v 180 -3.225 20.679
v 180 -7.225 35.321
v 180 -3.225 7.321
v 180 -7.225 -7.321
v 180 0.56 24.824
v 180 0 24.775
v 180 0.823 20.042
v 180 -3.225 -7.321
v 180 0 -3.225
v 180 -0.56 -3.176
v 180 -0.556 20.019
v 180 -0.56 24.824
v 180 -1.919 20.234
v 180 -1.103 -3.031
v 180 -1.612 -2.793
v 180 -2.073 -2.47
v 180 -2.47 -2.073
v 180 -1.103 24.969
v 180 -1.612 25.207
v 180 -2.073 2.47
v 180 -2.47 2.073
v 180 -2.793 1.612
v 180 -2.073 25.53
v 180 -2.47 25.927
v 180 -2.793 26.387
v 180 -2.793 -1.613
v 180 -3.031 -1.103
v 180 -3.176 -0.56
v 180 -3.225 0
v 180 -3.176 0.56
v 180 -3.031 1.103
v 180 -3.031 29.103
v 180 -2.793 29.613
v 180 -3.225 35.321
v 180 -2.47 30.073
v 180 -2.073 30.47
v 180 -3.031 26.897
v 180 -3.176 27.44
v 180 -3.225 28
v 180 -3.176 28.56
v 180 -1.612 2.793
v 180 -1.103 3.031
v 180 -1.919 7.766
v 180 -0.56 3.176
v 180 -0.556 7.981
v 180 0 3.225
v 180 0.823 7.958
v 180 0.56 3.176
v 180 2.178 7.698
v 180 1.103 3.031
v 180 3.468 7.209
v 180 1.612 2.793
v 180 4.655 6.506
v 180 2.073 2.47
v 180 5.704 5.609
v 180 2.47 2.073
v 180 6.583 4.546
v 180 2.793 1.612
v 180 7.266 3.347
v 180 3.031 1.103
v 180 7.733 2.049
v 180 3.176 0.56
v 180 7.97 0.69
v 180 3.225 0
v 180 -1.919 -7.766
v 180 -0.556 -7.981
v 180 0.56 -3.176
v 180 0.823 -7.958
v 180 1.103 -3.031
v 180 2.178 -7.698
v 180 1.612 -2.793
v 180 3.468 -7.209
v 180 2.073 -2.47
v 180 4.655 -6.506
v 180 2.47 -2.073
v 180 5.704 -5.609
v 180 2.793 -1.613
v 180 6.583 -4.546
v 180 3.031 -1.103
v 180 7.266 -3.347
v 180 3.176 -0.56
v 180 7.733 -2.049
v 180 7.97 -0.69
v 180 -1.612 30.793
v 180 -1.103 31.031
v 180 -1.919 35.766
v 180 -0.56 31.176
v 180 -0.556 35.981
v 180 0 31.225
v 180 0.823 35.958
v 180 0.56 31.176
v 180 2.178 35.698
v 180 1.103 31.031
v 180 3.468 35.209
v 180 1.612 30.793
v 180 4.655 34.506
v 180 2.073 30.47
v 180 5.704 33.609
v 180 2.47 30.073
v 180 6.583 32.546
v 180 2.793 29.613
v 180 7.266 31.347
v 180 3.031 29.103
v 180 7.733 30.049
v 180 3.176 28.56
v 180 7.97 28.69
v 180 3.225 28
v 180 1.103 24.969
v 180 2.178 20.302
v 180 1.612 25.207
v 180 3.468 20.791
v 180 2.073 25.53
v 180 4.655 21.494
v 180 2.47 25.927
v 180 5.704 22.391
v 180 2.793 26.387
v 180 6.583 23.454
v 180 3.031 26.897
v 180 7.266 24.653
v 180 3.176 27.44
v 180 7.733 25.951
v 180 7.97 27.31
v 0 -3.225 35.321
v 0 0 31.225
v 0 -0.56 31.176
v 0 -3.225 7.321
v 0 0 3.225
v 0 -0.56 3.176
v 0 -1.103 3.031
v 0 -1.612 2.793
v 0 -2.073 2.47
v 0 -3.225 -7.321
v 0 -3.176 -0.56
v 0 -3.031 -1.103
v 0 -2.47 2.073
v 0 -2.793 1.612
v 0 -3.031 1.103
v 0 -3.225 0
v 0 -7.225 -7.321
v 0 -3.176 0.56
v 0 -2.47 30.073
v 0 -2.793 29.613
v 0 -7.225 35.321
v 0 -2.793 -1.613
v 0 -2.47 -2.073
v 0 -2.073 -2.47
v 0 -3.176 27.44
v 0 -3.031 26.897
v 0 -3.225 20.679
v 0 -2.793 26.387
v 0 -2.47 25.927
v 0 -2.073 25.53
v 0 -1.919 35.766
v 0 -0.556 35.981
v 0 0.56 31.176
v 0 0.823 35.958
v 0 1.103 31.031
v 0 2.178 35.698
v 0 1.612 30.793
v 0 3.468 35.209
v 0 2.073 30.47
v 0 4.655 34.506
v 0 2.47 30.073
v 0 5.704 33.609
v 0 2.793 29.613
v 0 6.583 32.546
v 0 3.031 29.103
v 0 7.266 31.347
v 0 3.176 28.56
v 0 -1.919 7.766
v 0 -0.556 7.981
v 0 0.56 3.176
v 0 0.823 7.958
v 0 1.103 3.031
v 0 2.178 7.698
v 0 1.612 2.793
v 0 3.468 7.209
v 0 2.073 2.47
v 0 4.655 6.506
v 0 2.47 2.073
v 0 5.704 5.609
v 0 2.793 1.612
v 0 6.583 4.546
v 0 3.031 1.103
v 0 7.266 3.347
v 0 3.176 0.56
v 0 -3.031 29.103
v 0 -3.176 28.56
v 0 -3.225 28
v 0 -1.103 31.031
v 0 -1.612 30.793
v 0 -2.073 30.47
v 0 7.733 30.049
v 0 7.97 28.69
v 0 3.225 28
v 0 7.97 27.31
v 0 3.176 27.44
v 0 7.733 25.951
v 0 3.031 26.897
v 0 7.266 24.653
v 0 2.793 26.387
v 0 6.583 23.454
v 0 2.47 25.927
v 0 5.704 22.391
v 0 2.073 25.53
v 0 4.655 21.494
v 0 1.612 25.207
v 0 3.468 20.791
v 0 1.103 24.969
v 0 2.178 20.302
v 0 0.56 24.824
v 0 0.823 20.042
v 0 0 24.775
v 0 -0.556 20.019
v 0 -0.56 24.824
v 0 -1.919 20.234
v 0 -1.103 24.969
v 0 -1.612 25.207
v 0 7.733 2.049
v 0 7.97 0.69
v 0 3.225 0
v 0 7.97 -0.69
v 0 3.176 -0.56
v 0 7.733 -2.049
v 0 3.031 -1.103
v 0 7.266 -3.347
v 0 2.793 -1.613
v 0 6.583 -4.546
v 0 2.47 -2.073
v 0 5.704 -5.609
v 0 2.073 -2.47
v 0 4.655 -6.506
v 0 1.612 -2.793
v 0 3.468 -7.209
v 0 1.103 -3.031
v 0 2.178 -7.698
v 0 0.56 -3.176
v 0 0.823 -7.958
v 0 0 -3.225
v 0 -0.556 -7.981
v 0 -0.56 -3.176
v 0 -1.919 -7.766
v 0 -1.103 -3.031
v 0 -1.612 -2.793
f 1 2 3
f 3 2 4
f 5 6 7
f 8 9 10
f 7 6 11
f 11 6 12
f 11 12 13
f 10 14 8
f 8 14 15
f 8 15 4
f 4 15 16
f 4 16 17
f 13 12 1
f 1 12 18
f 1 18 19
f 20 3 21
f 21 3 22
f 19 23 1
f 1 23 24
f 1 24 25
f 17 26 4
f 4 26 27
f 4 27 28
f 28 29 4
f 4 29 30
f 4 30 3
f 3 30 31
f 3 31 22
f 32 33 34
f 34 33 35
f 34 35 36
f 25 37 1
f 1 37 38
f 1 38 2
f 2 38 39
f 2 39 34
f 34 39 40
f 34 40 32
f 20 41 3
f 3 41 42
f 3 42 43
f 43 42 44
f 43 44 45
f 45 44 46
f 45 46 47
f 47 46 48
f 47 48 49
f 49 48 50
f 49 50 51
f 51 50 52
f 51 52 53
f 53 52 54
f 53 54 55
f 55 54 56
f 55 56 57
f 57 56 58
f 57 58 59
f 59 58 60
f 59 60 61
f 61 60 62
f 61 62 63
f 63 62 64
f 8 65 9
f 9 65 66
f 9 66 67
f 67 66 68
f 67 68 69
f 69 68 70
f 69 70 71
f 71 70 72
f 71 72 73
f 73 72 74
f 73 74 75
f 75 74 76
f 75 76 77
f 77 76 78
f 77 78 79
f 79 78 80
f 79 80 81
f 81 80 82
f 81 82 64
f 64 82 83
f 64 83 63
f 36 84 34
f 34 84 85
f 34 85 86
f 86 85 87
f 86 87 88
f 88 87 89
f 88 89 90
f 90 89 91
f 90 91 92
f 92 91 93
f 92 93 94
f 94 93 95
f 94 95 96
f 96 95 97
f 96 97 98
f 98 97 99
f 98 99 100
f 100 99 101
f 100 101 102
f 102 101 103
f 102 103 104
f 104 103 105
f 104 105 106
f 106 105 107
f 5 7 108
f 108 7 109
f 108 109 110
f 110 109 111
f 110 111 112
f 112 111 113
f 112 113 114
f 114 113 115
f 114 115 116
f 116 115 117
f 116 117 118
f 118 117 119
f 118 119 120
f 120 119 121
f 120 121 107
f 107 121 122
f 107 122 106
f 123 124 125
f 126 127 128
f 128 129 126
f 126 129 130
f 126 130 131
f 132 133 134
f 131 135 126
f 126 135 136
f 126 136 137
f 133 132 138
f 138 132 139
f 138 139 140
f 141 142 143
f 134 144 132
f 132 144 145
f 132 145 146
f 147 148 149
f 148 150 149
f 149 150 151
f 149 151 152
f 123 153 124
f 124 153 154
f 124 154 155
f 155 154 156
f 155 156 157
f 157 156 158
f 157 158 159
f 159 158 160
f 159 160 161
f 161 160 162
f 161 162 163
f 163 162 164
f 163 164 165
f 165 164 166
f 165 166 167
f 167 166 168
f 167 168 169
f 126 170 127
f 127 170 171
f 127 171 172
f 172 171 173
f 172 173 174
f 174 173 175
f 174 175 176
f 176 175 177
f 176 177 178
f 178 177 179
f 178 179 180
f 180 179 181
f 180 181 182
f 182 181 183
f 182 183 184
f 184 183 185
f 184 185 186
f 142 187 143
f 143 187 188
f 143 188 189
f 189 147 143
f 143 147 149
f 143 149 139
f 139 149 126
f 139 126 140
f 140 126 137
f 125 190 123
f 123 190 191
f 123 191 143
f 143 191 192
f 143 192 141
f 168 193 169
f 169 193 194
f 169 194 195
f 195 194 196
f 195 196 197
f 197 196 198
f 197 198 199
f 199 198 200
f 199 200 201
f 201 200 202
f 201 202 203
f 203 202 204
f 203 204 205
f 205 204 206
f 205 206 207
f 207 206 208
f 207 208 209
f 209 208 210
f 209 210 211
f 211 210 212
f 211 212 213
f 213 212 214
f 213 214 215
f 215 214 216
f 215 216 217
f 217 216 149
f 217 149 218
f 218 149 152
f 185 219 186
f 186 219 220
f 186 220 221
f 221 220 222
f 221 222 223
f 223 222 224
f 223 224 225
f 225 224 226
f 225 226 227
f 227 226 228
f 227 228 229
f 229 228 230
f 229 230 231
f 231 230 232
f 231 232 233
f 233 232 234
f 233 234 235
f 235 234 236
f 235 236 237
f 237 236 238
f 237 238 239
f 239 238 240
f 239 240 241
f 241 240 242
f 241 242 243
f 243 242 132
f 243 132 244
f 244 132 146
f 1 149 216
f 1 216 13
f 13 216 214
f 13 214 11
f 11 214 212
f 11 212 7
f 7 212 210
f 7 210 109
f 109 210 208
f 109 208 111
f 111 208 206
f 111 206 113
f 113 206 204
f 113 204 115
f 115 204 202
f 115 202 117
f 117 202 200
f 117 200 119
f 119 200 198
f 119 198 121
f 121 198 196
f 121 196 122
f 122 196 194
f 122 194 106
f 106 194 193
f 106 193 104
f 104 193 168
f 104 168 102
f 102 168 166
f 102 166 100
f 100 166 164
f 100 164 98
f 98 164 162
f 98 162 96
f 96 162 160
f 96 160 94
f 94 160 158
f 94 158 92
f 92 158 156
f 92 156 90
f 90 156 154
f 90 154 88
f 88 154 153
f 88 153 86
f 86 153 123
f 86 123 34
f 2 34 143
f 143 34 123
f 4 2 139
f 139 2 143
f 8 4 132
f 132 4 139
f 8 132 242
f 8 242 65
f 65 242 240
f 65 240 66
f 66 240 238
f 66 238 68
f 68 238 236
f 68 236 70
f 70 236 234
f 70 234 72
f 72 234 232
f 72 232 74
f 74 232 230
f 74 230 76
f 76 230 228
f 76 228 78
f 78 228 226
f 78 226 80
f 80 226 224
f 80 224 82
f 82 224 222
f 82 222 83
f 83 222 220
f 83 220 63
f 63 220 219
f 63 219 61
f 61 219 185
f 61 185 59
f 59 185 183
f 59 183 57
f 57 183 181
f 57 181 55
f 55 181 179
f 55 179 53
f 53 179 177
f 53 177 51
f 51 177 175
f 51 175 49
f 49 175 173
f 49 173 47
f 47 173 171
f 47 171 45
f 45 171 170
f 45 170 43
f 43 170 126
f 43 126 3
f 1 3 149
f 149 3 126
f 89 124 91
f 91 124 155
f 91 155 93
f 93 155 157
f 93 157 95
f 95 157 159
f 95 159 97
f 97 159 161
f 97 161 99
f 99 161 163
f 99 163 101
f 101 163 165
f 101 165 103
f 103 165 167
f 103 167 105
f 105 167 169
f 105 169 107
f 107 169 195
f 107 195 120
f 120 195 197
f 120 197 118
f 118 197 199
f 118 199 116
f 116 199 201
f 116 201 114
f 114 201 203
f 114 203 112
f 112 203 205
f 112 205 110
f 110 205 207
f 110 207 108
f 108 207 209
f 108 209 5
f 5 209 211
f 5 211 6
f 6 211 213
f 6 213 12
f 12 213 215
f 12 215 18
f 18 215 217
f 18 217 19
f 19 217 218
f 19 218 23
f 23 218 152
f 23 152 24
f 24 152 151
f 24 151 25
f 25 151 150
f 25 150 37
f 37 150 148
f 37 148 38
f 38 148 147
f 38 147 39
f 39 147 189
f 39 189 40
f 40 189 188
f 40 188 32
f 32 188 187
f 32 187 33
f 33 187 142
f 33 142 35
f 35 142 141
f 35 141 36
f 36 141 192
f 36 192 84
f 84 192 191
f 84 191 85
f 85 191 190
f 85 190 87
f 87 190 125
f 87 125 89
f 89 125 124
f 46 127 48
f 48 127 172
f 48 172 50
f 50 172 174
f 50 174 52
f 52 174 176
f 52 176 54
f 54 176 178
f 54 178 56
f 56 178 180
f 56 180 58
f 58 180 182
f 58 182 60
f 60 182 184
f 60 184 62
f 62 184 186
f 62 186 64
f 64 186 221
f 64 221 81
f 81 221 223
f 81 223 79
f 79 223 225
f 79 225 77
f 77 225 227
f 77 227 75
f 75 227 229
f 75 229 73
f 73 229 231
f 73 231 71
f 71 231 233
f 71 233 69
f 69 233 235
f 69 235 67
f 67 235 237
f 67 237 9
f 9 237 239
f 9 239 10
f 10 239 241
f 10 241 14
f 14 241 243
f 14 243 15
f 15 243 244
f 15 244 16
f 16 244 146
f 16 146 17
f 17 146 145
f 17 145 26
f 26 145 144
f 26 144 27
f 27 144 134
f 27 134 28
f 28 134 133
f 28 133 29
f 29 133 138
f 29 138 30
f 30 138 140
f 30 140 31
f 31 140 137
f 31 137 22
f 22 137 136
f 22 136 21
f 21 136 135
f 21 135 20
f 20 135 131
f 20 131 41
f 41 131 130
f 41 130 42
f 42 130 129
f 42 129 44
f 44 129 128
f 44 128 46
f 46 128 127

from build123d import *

# Parameters (mm, degrees)
SKETCH1_R           = 3.225
BOSS_EXTRUDE1_DEPTH = 180


with BuildPart() as part:
    # Sketch1 → Boss-Extrude1 (new body)
    with BuildSketch(Plane(origin=(0, 0, 0), x_dir=(0, 0, -1), z_dir=(1, 0, 0))):
        with BuildLine():
            Line((-20.678840597, -3.225), (-7.321159403, -3.225))
            ThreePointArc((-7.321159403, -3.225), (0, 8), (7.321159403, -3.225))
            Line((7.321159403, -3.225), (7.321159403, -7.225))
            Line((7.321159403, -7.225), (-35.321159403, -7.225))
            Line((-35.321159403, -7.225), (-35.321159403, -3.225))
            ThreePointArc((-35.321159403, -3.225), (-28, 8), (-20.678840597, -3.225))
        make_face()
        Circle(SKETCH1_R, mode=Mode.SUBTRACT)
        with Locations((-28, 0)):
            Circle(SKETCH1_R, mode=Mode.SUBTRACT)
    extrude(amount=BOSS_EXTRUDE1_DEPTH)


solid = part.part
